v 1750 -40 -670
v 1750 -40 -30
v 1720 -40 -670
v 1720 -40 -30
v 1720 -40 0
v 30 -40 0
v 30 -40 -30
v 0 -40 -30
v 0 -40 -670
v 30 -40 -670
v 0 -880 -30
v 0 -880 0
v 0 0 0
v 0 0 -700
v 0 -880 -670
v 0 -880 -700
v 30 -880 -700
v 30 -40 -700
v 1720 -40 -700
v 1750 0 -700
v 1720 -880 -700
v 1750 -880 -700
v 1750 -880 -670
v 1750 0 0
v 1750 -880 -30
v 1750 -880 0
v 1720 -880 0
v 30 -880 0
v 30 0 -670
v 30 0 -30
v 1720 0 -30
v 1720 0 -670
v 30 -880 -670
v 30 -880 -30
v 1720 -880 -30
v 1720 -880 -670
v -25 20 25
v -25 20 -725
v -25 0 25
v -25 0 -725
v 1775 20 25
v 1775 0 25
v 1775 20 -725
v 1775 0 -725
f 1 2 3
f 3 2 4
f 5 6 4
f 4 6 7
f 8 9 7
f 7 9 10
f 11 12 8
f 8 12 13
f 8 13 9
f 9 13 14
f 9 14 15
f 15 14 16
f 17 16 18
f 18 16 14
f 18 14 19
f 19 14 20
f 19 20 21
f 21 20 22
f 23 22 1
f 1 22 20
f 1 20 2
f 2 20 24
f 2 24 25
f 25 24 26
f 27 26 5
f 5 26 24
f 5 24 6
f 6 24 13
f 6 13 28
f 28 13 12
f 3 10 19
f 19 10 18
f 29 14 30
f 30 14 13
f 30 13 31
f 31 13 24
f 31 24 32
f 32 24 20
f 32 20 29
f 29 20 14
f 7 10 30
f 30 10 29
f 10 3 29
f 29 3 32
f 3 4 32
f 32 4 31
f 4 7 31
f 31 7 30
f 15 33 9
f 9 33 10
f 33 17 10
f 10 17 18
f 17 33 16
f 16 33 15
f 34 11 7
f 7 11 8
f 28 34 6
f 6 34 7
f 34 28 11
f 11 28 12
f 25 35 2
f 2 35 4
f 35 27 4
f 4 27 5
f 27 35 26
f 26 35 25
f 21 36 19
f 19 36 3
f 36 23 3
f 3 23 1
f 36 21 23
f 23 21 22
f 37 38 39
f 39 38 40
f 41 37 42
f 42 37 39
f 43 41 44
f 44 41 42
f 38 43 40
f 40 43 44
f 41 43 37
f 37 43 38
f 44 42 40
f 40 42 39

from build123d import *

# Parameters (mm, degrees)
SKETCH1_W           = 1750
SKETCH1_H           = 700
SKETCH1_W_2         = 1690
SKETCH1_H_2         = 640
EXTRUDE_THIN1_DEPTH = 40
SKETCH2_W           = 30
SKETCH2_H           = 30
BOSS_EXTRUDE1_DEPTH = 880
SKETCH3_W           = 1800
SKETCH3_H           = 750
BOSS_EXTRUDE2_DEPTH = 20


with BuildPart() as part:
    # Sketch1 → Extrude-Thin1 (new body)
    with BuildSketch(Plane(origin=(0, 0, 0), x_dir=(1, 0, 0), z_dir=(0, 1, 0))):
        with Locations((875, 350)):
            Rectangle(SKETCH1_W, SKETCH1_H)
        with Locations((875, 350)):
            Rectangle(SKETCH1_W_2, SKETCH1_H_2, mode=Mode.SUBTRACT)
    extrude(amount=-EXTRUDE_THIN1_DEPTH)

    # Sketch2 → Boss-Extrude1 (add)
    with BuildSketch(Plane(origin=(0, 0, 0), x_dir=(1, 0, 0), z_dir=(0, 1, 0))):
        with Locations((15, 685)):
            Rectangle(SKETCH2_W, SKETCH2_H)
        with Locations((15, 15)):
            Rectangle(SKETCH2_W, SKETCH2_H)
        with Locations((1735, 15)):
            Rectangle(SKETCH2_W, SKETCH2_H)
        with Locations((1735, 685)):
            Rectangle(SKETCH2_W, SKETCH2_H)
    extrude(amount=-BOSS_EXTRUDE1_DEPTH)


with BuildPart() as body_2:
    # Sketch3 → Boss-Extrude2 (new body)
    with BuildSketch(Plane(origin=(0, 0, 0), x_dir=(1, 0, 0), z_dir=(0, 1, 0))):
        with Locations((875, 350)):
            Rectangle(SKETCH3_W, SKETCH3_H)
    extrude(amount=BOSS_EXTRUDE2_DEPTH)


solid = Compound([part.part, body_2.part])
